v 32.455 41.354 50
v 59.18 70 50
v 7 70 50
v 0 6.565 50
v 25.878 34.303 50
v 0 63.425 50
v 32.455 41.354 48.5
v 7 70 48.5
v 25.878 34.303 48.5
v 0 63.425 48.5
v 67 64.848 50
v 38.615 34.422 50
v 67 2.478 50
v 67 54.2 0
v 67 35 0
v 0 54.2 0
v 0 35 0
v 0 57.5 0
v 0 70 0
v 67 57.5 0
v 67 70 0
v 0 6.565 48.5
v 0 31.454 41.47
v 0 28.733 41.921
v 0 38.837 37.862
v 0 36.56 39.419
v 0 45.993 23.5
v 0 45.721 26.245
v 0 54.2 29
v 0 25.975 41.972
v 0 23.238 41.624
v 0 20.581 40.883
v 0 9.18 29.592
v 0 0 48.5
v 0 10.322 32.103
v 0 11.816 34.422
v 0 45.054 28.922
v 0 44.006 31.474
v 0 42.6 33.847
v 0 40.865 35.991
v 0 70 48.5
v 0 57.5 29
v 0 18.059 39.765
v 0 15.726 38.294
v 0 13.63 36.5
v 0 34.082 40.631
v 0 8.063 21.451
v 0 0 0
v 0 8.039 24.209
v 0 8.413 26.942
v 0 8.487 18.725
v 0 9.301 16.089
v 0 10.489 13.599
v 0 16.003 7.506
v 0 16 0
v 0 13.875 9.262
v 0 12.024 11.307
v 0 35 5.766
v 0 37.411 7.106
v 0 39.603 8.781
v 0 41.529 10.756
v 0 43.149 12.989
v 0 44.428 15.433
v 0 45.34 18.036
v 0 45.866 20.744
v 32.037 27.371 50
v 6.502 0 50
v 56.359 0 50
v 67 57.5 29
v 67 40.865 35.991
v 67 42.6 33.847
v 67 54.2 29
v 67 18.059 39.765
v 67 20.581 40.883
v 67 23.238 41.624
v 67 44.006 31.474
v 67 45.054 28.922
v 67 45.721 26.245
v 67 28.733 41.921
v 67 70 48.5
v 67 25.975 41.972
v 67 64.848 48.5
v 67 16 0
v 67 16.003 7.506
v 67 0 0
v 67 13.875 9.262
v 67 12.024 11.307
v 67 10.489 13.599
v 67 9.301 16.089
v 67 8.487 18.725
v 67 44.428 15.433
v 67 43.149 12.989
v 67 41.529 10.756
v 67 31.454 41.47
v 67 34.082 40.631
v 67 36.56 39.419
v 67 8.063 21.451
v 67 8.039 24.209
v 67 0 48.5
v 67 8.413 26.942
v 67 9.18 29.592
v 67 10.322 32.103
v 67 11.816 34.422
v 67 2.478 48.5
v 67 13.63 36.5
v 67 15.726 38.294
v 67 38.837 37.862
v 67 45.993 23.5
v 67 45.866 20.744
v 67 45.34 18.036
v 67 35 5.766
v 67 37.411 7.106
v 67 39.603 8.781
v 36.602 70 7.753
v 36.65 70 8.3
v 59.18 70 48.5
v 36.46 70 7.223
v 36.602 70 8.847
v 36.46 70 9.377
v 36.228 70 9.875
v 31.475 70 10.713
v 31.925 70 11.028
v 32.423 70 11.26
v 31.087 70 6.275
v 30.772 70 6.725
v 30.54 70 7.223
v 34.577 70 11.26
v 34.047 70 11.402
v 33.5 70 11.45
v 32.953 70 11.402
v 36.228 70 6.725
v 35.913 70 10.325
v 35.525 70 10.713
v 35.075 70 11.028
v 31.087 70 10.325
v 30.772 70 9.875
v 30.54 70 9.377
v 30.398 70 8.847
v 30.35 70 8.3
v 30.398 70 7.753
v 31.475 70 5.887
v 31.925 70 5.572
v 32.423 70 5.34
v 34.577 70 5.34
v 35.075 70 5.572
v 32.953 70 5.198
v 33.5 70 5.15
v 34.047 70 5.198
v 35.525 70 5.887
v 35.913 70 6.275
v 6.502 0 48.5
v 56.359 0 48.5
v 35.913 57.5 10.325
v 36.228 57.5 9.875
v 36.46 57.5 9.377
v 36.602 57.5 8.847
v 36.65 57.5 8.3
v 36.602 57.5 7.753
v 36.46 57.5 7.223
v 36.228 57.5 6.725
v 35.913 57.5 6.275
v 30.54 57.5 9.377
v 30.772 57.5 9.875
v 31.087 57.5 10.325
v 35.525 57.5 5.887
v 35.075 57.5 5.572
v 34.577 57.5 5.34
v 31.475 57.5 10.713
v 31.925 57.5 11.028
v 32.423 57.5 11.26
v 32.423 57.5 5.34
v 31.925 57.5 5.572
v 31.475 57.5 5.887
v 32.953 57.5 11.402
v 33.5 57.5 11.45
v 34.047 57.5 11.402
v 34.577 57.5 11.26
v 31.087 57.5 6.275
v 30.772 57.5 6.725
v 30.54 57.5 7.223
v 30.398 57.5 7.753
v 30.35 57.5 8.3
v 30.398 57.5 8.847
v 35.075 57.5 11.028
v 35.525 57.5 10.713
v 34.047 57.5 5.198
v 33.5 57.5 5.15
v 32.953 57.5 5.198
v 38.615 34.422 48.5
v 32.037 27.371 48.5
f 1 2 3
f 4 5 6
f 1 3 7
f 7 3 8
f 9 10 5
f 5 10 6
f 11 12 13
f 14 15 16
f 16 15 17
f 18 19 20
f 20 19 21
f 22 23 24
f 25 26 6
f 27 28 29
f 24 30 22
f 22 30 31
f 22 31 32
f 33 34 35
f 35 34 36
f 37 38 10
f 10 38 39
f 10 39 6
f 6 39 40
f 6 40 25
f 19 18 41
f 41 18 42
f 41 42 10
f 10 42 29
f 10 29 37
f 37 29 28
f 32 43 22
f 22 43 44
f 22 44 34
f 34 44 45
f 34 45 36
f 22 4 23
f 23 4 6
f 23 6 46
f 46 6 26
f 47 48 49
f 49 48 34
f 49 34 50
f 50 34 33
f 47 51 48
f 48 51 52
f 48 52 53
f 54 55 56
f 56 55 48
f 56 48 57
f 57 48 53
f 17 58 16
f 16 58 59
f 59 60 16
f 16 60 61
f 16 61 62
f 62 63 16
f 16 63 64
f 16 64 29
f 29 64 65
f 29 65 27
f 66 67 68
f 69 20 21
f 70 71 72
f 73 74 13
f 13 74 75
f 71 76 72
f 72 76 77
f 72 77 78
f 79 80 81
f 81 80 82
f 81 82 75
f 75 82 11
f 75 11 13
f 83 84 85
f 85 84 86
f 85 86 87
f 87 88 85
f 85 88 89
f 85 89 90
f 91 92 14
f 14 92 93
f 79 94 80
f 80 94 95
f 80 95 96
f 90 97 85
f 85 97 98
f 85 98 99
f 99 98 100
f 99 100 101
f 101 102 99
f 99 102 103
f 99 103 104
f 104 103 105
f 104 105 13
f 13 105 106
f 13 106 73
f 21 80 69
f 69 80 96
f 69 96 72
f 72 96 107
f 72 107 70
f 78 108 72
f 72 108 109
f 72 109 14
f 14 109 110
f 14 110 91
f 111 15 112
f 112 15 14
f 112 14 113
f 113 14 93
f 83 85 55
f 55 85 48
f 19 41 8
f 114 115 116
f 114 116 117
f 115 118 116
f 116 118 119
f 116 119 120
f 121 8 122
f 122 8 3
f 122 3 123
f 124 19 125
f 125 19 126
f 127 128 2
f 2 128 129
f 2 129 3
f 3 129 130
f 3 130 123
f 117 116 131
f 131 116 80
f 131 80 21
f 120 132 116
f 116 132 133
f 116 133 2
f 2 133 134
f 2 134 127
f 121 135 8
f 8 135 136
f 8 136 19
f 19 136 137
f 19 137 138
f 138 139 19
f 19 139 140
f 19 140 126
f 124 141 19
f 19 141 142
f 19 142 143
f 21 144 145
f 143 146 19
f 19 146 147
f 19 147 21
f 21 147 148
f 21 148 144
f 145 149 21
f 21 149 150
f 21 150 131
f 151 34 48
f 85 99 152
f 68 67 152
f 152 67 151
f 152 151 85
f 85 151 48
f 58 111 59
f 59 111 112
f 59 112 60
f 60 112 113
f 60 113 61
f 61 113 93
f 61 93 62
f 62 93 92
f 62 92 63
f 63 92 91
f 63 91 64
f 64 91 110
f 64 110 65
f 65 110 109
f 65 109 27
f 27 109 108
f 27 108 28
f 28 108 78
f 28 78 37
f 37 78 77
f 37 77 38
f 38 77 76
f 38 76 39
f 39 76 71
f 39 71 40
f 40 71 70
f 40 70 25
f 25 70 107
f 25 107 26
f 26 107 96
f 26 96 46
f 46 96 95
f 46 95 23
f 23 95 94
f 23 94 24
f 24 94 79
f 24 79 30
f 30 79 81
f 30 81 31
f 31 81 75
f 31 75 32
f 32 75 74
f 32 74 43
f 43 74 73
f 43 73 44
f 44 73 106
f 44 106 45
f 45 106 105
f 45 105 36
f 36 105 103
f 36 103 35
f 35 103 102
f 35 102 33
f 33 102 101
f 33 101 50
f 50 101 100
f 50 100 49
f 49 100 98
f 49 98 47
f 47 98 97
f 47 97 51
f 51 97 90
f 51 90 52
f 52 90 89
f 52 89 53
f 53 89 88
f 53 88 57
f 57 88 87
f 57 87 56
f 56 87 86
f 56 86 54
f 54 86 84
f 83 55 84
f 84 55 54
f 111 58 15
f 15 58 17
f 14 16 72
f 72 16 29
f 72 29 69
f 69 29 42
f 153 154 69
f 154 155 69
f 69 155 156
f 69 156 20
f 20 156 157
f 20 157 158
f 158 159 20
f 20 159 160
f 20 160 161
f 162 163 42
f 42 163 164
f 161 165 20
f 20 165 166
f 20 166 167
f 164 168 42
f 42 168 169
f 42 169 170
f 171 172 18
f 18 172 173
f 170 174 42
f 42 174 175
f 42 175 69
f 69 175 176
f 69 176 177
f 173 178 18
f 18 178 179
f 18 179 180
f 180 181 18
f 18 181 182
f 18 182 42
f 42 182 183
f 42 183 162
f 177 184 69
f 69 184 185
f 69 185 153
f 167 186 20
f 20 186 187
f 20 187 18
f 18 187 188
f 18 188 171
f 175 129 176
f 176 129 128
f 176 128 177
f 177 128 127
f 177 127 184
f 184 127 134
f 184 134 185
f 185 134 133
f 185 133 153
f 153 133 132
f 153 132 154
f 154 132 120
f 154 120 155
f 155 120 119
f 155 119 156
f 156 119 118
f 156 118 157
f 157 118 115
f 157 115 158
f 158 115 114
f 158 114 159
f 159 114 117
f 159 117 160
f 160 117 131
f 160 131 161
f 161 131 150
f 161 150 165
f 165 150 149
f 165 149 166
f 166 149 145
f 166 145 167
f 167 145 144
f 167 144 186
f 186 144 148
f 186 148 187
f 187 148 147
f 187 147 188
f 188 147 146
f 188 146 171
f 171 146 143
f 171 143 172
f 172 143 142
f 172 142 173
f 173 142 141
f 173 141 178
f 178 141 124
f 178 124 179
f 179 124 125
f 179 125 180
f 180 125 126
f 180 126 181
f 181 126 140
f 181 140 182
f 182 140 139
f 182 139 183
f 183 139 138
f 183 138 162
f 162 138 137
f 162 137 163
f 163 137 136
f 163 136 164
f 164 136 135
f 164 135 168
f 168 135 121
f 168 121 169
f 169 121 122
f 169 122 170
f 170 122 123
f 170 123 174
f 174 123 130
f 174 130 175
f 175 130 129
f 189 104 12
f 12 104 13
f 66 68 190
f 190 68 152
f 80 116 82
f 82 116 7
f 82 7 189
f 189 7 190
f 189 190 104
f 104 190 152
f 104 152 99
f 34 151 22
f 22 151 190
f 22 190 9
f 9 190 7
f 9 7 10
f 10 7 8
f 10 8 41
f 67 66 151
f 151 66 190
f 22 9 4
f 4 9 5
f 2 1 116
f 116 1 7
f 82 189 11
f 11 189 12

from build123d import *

# Parameters (mm, degrees)
SKETCH1_W           = 67
SKETCH1_H           = 50
BOSS_EXTRUDE1_DEPTH = 70
SKETCH2_R           = 19
CUT_EXTRUDE1_DEPTH  = 70
CUT_EXTRUDE2_DEPTH  = 70
SKETCH4_W           = 29
SKETCH4_H           = 3.3
CUT_EXTRUDE3_DEPTH  = 70
SKETCH5_R           = 3.15
CUT_EXTRUDE4_DEPTH  = 12.5
CUT_EXTRUDE6_DEPTH  = 1.5
CUT_EXTRUDE7_DEPTH  = 1.5


with BuildPart() as part:
    # Sketch1 → Boss-Extrude1 (new body)
    with BuildSketch(Plane(origin=(0, 0, 0), x_dir=(1, 0, 0), z_dir=(0, 1, 0))):
        with Locations((33.5, -25)):
            Rectangle(SKETCH1_W, SKETCH1_H)
    extrude(amount=BOSS_EXTRUDE1_DEPTH)

    # Sketch2 → Cut-Extrude1 (cut)
    with BuildSketch(Plane(origin=(67, 0, 0), x_dir=(0, 0, -1), z_dir=(1, 0, 0))):
        with Locations((-23, 27)):
            Circle(SKETCH2_R)
    extrude(amount=-CUT_EXTRUDE1_DEPTH, mode=Mode.SUBTRACT)

    # Sketch3 → Cut-Extrude2 (cut)
    with BuildSketch(Plane(origin=(67, 0, 0), x_dir=(0, 0, -1), z_dir=(1, 0, 0))):
        Polygon((0, 25.5), (0, 35), (-5.76631206, 35), (-4, 27), (-7.506256635, 16.002549544), (0, 16), align=None)
    extrude(amount=-CUT_EXTRUDE2_DEPTH, mode=Mode.SUBTRACT)

    # Sketch4 → Cut-Extrude3 (cut)
    with BuildSketch(Plane(origin=(67, 0, 0), x_dir=(0, 0, -1), z_dir=(1, 0, 0))):
        with Locations((-14.5, 55.85)):
            Rectangle(SKETCH4_W, SKETCH4_H)
    extrude(amount=-CUT_EXTRUDE3_DEPTH, mode=Mode.SUBTRACT)

    # Sketch5 → Cut-Extrude4 (cut)
    with BuildSketch(Plane(origin=(0, 70, 0), x_dir=(1, 0, 0), z_dir=(0, 1, 0))):
        with Locations(Location((33.5, -8.3, 0), (0, 0, 270))):
            Circle(SKETCH5_R)
    extrude(amount=-CUT_EXTRUDE4_DEPTH, mode=Mode.SUBTRACT)

    # Sketch6 → Cut-Extrude6 (cut)
    with BuildSketch(Plane.XY.offset(50)):
        Polygon((0, 63.425021167), (56.359161664, 0), (67, 0), (67, 2.477681398), (7, 70), (0, 70), align=None)
    extrude(amount=-CUT_EXTRUDE6_DEPTH, mode=Mode.SUBTRACT)

    # Sketch7 → Cut-Extrude7 (cut)
    with BuildSketch(Plane.XY.offset(50)):
        Polygon((0, 6.564878252), (59.179714273, 70), (67, 70), (67, 64.848472441), (6.501746598, 0), (0, 0), align=None)
    extrude(amount=-CUT_EXTRUDE7_DEPTH, mode=Mode.SUBTRACT)


solid = part.part
